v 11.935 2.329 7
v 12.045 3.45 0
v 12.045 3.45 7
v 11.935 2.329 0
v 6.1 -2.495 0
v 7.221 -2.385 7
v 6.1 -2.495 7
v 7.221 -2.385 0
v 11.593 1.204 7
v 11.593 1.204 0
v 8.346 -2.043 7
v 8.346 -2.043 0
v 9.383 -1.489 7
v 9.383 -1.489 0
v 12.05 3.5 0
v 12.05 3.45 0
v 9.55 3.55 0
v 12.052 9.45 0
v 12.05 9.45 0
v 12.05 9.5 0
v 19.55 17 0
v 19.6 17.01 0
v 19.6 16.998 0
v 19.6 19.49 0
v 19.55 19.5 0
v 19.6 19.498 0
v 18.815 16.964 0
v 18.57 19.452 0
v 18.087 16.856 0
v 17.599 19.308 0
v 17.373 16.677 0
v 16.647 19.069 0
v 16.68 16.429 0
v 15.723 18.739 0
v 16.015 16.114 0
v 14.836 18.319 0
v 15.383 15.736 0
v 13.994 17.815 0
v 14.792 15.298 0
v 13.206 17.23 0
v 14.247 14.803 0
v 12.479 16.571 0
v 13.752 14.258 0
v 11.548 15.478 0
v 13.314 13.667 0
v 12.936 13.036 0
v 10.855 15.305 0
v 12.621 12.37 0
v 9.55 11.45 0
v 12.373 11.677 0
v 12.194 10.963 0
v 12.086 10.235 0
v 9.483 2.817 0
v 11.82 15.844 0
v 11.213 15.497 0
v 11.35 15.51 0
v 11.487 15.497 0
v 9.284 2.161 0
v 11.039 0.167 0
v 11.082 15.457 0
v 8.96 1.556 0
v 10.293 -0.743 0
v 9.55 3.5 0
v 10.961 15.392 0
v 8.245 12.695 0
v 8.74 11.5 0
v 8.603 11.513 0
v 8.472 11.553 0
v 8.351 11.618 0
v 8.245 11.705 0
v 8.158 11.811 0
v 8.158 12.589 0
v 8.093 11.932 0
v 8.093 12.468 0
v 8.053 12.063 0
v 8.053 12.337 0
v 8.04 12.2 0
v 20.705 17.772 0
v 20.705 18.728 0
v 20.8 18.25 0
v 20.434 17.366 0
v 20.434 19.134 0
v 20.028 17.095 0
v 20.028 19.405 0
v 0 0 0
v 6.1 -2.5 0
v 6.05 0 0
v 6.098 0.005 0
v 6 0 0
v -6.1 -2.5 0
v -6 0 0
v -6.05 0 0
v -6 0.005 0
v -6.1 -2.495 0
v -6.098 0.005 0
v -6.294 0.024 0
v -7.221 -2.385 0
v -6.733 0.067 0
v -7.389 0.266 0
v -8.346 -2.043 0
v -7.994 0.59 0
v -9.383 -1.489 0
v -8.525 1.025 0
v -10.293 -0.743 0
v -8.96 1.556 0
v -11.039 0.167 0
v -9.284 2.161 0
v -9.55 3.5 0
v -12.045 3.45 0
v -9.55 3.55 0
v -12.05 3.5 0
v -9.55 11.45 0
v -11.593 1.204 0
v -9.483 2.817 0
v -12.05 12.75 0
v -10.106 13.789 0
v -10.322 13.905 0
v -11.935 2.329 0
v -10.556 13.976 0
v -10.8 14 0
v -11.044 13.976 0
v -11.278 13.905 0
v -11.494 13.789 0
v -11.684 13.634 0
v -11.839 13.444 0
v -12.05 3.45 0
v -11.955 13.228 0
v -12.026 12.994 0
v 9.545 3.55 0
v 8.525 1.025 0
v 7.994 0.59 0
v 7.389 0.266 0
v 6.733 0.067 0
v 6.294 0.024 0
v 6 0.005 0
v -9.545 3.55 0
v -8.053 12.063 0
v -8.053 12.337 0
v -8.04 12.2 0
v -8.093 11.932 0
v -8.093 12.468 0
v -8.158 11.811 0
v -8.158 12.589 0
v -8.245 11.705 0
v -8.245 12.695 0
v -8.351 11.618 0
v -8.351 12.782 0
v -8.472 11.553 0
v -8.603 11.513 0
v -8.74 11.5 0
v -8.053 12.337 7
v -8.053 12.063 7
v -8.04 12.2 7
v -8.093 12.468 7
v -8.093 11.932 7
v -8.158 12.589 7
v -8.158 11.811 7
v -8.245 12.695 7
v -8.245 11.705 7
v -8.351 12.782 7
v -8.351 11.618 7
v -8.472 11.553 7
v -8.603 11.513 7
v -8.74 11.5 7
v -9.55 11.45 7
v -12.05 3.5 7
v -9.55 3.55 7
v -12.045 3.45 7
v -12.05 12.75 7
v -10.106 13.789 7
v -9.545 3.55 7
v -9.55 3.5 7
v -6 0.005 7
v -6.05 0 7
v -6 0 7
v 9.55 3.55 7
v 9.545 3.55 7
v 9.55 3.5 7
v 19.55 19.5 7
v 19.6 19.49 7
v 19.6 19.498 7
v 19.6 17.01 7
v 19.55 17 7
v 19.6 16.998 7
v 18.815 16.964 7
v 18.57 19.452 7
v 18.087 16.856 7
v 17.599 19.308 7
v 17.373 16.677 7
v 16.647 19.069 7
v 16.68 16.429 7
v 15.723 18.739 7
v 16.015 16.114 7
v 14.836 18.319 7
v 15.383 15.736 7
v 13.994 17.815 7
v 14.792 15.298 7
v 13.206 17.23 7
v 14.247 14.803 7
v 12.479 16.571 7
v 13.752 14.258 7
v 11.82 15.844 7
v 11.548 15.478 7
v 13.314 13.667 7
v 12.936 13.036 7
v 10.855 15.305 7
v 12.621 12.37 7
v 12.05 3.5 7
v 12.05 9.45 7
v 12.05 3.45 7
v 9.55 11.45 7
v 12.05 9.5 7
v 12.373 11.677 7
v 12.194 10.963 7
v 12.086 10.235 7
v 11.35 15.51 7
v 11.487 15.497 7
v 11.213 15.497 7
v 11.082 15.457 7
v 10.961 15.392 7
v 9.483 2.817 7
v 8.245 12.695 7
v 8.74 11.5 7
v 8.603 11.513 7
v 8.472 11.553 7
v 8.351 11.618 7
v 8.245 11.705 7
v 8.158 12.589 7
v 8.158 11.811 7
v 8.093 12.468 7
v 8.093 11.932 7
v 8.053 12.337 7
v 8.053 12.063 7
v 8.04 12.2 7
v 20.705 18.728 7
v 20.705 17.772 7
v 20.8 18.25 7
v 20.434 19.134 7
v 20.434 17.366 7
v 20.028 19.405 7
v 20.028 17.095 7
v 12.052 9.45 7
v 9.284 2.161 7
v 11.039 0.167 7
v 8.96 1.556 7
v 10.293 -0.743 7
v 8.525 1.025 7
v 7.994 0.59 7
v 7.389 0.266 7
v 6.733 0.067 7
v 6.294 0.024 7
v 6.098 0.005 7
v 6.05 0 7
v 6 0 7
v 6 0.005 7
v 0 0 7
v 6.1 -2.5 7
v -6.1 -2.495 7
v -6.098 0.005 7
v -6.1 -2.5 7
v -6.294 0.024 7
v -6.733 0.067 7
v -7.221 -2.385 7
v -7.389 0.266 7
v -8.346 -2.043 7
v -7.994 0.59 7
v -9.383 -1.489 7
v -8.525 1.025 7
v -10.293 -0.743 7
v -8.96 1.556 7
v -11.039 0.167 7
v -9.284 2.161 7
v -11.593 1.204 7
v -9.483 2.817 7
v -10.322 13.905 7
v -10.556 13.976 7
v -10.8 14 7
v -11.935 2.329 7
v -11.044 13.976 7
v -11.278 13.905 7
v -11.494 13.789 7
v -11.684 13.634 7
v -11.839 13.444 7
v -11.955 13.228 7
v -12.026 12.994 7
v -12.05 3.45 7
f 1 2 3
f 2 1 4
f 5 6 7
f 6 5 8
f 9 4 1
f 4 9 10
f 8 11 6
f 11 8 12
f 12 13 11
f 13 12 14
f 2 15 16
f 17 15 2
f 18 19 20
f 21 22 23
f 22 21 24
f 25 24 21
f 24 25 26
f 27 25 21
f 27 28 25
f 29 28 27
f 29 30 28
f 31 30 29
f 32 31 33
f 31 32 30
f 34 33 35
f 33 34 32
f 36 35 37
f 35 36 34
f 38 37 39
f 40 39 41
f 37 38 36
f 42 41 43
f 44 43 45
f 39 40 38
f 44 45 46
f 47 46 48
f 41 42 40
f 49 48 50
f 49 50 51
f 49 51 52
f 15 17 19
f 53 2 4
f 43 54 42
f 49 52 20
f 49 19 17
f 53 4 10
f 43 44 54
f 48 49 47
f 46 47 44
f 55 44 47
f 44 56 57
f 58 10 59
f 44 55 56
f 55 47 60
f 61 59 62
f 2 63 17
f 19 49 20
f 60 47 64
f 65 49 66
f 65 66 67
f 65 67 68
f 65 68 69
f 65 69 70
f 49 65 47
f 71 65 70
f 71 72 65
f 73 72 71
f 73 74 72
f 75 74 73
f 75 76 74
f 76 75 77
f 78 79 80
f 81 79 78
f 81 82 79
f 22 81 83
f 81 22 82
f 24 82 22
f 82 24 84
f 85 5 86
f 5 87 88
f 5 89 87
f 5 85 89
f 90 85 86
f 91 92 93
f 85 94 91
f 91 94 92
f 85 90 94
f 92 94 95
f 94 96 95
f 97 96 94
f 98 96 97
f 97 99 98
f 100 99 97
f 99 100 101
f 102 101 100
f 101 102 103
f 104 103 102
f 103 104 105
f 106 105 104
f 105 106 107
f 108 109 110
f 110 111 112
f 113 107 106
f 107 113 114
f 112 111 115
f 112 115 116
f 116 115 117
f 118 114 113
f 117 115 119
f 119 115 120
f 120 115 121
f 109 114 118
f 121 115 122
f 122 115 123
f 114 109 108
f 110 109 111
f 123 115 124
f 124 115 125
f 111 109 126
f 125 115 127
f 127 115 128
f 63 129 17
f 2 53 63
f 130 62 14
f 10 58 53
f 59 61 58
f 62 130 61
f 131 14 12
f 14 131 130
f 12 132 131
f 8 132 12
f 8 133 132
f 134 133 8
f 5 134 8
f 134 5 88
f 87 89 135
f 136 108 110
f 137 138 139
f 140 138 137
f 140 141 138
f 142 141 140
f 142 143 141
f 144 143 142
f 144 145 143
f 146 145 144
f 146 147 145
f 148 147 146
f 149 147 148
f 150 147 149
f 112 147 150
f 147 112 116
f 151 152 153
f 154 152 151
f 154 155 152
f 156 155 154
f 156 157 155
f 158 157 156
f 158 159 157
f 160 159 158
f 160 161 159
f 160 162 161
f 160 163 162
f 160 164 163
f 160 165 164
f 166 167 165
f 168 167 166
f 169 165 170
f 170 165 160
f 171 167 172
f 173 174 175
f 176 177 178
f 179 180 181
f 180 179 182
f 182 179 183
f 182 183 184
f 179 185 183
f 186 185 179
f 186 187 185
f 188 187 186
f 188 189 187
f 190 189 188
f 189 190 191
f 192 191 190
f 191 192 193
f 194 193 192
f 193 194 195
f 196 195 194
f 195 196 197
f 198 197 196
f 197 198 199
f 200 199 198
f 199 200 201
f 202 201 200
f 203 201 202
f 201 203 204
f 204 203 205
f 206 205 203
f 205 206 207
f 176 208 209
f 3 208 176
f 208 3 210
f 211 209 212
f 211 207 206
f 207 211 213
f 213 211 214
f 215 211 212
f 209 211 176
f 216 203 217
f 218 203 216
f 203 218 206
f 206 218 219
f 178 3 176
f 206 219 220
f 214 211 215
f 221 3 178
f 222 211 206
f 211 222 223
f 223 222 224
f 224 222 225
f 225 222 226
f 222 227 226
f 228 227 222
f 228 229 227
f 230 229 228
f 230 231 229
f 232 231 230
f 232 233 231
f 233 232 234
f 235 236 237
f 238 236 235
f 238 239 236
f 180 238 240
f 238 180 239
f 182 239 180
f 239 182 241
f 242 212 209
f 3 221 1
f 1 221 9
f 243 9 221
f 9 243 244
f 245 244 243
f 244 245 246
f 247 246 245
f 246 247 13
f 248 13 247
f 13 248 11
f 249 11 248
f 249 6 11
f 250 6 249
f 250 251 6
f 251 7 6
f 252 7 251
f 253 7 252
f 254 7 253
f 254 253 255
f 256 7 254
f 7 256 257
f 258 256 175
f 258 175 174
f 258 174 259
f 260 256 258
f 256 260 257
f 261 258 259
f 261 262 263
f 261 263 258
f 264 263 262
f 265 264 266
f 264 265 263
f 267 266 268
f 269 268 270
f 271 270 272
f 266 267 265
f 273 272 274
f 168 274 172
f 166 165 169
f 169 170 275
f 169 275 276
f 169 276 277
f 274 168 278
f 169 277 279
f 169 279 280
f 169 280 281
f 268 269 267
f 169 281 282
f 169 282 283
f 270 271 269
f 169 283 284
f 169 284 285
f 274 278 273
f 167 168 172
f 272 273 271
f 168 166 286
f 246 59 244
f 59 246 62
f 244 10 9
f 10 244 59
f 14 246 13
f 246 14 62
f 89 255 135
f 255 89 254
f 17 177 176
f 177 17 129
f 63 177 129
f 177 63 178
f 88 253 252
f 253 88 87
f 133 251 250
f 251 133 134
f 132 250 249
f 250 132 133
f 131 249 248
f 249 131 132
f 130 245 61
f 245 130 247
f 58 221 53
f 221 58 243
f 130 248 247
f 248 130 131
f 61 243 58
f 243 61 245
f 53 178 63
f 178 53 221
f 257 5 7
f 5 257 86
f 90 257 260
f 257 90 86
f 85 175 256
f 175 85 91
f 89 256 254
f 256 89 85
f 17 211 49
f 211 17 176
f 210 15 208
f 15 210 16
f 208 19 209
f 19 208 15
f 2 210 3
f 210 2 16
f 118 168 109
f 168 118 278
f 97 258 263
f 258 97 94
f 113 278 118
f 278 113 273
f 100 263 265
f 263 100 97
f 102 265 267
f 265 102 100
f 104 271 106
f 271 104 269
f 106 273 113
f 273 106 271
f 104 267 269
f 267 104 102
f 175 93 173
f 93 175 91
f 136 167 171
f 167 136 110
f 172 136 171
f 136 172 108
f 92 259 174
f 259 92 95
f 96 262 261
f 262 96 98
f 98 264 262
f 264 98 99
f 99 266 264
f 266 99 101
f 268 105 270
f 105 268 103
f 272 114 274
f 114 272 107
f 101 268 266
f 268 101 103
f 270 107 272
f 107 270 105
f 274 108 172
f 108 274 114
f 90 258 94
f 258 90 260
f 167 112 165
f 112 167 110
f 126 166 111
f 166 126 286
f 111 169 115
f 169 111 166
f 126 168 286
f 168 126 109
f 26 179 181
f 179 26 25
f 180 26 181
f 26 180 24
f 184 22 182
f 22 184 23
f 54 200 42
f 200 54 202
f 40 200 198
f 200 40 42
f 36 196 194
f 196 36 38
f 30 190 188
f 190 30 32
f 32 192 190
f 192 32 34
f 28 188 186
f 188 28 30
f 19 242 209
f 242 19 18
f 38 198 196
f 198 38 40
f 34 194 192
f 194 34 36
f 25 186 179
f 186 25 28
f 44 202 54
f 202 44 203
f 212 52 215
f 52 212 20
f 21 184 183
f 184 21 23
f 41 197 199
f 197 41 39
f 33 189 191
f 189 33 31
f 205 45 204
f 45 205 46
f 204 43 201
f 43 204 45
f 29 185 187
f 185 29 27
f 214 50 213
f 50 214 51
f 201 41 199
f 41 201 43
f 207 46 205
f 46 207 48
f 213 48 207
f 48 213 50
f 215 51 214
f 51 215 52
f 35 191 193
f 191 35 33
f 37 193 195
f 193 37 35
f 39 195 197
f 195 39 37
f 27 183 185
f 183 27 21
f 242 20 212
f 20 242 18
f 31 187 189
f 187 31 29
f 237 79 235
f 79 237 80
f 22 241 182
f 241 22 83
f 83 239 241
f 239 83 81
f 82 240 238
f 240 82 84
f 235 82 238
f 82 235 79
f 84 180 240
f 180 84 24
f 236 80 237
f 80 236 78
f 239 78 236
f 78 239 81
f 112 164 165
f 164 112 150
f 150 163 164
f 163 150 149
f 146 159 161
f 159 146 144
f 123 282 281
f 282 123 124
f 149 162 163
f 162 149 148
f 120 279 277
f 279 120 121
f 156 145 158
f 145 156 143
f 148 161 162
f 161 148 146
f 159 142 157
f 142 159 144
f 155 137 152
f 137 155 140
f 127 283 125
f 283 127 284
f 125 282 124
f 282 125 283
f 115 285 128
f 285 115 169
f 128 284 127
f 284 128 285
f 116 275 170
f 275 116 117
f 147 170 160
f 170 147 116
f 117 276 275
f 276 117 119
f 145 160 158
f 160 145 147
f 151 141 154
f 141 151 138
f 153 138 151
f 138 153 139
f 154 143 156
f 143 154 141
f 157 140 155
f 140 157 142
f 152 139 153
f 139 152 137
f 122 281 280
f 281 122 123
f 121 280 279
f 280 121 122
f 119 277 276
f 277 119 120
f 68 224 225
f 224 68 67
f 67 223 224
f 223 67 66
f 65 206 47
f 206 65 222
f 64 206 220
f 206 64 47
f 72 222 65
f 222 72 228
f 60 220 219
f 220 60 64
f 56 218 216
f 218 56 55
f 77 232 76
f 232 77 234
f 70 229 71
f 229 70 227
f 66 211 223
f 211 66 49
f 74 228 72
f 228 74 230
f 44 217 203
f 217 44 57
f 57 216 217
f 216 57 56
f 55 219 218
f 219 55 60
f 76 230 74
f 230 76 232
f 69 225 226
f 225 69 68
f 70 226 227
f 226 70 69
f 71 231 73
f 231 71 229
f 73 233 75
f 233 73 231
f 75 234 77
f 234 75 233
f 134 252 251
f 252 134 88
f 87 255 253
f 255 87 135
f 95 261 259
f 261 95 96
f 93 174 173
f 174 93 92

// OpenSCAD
use <../utilities.scad>

span=19.1; //increased from 19
corner_r=6;
clip_to_cross=11.5;
//clip_to_cross=8.5;
t=2.5;
lip=2.5;
lug_r=0.7;
d=0.05;
h=7;
$fn=32;

difference(){
	union(){
		reflect([1,0,0]){
			translate([-d,-t,0]) cube([span/2+t+d-corner_r+d,t,h]); //bottom
			translate([span/2,corner_r-t-d,0]) cube([t,clip_to_cross+2*d-corner_r+t,h]); //side
			translate([span/2-corner_r+t,corner_r-t,0]) difference(){ //corner
				intersection(){
					cylinder(r=corner_r,h=h);
					mirror([0,1,0]) translate([-d,-d,-d]) cube([999,999,999]);
				}
				cylinder(r=corner_r-t,h=999,center=true);
			}
		}
		//rounded lug on non-lever side (to allow clip to rotate without bending)
		translate([-span/2,clip_to_cross,0]) hull(){
			translate([-t,-d,0]) cube([t,d,h]); //join to arm of clip
			translate([-t/2,t/2,0]) cylinder(r=t/2,h=h); //rounded end
			translate([lip-lug_r/tan(22.5),lug_r,0]) cylinder(r=lug_r,h=h); //lug
		}
		//rounded lug on lever side (with sloped lead-in to help it clip in easily)
		mirror([1,0,0]) translate([-span/2,clip_to_cross,0]) hull(){
			translate([-t,-d,0]) cube([t,d,h]); //join to arm of clip
			translate([-t+lug_r,t+lip-lug_r/tan(22.5),0]) cylinder(r=lug_r,h=h); //rounded end (produces slope)
			translate([lip-lug_r/tan(22.5),lug_r,0]) cylinder(r=lug_r,h=h); //lug
		}
		//curved lever
		assign(roc=10) translate([span/2+roc,clip_to_cross-roc/5,0]) union(){
			difference(){
				hull(){
					intersection(){
						cylinder(r=roc,h=h,$fn=64);
						rotate([0,0,90]) translate([-d,-d,-d]) cube([999,999,999]);
					}
				}
				cylinder(r=roc-t,h=999,center=true,$fn=64);
			}
			translate([0,roc-t/2,0]) cylinder(r=t/2,$fn=16,h);
		}
//		translate([0,0,h/2]) cube([span+2*t-2*corner_r,3,h],center=true); //squeeze outer cables
	}
//	repeat([5,0,0],2,center=true) translate([0,0,h/2]) cube([2,999,3],center=true); //holes for cable ties
	translate([0,5/2,0]) cylinder(r=5/2,h=999,center=true); //clearance for third cable
	reflect([1,0,0]) translate([span/2+t-corner_r,t/2,0]) cylinder(r=t/2,h=999,center=true);
}
